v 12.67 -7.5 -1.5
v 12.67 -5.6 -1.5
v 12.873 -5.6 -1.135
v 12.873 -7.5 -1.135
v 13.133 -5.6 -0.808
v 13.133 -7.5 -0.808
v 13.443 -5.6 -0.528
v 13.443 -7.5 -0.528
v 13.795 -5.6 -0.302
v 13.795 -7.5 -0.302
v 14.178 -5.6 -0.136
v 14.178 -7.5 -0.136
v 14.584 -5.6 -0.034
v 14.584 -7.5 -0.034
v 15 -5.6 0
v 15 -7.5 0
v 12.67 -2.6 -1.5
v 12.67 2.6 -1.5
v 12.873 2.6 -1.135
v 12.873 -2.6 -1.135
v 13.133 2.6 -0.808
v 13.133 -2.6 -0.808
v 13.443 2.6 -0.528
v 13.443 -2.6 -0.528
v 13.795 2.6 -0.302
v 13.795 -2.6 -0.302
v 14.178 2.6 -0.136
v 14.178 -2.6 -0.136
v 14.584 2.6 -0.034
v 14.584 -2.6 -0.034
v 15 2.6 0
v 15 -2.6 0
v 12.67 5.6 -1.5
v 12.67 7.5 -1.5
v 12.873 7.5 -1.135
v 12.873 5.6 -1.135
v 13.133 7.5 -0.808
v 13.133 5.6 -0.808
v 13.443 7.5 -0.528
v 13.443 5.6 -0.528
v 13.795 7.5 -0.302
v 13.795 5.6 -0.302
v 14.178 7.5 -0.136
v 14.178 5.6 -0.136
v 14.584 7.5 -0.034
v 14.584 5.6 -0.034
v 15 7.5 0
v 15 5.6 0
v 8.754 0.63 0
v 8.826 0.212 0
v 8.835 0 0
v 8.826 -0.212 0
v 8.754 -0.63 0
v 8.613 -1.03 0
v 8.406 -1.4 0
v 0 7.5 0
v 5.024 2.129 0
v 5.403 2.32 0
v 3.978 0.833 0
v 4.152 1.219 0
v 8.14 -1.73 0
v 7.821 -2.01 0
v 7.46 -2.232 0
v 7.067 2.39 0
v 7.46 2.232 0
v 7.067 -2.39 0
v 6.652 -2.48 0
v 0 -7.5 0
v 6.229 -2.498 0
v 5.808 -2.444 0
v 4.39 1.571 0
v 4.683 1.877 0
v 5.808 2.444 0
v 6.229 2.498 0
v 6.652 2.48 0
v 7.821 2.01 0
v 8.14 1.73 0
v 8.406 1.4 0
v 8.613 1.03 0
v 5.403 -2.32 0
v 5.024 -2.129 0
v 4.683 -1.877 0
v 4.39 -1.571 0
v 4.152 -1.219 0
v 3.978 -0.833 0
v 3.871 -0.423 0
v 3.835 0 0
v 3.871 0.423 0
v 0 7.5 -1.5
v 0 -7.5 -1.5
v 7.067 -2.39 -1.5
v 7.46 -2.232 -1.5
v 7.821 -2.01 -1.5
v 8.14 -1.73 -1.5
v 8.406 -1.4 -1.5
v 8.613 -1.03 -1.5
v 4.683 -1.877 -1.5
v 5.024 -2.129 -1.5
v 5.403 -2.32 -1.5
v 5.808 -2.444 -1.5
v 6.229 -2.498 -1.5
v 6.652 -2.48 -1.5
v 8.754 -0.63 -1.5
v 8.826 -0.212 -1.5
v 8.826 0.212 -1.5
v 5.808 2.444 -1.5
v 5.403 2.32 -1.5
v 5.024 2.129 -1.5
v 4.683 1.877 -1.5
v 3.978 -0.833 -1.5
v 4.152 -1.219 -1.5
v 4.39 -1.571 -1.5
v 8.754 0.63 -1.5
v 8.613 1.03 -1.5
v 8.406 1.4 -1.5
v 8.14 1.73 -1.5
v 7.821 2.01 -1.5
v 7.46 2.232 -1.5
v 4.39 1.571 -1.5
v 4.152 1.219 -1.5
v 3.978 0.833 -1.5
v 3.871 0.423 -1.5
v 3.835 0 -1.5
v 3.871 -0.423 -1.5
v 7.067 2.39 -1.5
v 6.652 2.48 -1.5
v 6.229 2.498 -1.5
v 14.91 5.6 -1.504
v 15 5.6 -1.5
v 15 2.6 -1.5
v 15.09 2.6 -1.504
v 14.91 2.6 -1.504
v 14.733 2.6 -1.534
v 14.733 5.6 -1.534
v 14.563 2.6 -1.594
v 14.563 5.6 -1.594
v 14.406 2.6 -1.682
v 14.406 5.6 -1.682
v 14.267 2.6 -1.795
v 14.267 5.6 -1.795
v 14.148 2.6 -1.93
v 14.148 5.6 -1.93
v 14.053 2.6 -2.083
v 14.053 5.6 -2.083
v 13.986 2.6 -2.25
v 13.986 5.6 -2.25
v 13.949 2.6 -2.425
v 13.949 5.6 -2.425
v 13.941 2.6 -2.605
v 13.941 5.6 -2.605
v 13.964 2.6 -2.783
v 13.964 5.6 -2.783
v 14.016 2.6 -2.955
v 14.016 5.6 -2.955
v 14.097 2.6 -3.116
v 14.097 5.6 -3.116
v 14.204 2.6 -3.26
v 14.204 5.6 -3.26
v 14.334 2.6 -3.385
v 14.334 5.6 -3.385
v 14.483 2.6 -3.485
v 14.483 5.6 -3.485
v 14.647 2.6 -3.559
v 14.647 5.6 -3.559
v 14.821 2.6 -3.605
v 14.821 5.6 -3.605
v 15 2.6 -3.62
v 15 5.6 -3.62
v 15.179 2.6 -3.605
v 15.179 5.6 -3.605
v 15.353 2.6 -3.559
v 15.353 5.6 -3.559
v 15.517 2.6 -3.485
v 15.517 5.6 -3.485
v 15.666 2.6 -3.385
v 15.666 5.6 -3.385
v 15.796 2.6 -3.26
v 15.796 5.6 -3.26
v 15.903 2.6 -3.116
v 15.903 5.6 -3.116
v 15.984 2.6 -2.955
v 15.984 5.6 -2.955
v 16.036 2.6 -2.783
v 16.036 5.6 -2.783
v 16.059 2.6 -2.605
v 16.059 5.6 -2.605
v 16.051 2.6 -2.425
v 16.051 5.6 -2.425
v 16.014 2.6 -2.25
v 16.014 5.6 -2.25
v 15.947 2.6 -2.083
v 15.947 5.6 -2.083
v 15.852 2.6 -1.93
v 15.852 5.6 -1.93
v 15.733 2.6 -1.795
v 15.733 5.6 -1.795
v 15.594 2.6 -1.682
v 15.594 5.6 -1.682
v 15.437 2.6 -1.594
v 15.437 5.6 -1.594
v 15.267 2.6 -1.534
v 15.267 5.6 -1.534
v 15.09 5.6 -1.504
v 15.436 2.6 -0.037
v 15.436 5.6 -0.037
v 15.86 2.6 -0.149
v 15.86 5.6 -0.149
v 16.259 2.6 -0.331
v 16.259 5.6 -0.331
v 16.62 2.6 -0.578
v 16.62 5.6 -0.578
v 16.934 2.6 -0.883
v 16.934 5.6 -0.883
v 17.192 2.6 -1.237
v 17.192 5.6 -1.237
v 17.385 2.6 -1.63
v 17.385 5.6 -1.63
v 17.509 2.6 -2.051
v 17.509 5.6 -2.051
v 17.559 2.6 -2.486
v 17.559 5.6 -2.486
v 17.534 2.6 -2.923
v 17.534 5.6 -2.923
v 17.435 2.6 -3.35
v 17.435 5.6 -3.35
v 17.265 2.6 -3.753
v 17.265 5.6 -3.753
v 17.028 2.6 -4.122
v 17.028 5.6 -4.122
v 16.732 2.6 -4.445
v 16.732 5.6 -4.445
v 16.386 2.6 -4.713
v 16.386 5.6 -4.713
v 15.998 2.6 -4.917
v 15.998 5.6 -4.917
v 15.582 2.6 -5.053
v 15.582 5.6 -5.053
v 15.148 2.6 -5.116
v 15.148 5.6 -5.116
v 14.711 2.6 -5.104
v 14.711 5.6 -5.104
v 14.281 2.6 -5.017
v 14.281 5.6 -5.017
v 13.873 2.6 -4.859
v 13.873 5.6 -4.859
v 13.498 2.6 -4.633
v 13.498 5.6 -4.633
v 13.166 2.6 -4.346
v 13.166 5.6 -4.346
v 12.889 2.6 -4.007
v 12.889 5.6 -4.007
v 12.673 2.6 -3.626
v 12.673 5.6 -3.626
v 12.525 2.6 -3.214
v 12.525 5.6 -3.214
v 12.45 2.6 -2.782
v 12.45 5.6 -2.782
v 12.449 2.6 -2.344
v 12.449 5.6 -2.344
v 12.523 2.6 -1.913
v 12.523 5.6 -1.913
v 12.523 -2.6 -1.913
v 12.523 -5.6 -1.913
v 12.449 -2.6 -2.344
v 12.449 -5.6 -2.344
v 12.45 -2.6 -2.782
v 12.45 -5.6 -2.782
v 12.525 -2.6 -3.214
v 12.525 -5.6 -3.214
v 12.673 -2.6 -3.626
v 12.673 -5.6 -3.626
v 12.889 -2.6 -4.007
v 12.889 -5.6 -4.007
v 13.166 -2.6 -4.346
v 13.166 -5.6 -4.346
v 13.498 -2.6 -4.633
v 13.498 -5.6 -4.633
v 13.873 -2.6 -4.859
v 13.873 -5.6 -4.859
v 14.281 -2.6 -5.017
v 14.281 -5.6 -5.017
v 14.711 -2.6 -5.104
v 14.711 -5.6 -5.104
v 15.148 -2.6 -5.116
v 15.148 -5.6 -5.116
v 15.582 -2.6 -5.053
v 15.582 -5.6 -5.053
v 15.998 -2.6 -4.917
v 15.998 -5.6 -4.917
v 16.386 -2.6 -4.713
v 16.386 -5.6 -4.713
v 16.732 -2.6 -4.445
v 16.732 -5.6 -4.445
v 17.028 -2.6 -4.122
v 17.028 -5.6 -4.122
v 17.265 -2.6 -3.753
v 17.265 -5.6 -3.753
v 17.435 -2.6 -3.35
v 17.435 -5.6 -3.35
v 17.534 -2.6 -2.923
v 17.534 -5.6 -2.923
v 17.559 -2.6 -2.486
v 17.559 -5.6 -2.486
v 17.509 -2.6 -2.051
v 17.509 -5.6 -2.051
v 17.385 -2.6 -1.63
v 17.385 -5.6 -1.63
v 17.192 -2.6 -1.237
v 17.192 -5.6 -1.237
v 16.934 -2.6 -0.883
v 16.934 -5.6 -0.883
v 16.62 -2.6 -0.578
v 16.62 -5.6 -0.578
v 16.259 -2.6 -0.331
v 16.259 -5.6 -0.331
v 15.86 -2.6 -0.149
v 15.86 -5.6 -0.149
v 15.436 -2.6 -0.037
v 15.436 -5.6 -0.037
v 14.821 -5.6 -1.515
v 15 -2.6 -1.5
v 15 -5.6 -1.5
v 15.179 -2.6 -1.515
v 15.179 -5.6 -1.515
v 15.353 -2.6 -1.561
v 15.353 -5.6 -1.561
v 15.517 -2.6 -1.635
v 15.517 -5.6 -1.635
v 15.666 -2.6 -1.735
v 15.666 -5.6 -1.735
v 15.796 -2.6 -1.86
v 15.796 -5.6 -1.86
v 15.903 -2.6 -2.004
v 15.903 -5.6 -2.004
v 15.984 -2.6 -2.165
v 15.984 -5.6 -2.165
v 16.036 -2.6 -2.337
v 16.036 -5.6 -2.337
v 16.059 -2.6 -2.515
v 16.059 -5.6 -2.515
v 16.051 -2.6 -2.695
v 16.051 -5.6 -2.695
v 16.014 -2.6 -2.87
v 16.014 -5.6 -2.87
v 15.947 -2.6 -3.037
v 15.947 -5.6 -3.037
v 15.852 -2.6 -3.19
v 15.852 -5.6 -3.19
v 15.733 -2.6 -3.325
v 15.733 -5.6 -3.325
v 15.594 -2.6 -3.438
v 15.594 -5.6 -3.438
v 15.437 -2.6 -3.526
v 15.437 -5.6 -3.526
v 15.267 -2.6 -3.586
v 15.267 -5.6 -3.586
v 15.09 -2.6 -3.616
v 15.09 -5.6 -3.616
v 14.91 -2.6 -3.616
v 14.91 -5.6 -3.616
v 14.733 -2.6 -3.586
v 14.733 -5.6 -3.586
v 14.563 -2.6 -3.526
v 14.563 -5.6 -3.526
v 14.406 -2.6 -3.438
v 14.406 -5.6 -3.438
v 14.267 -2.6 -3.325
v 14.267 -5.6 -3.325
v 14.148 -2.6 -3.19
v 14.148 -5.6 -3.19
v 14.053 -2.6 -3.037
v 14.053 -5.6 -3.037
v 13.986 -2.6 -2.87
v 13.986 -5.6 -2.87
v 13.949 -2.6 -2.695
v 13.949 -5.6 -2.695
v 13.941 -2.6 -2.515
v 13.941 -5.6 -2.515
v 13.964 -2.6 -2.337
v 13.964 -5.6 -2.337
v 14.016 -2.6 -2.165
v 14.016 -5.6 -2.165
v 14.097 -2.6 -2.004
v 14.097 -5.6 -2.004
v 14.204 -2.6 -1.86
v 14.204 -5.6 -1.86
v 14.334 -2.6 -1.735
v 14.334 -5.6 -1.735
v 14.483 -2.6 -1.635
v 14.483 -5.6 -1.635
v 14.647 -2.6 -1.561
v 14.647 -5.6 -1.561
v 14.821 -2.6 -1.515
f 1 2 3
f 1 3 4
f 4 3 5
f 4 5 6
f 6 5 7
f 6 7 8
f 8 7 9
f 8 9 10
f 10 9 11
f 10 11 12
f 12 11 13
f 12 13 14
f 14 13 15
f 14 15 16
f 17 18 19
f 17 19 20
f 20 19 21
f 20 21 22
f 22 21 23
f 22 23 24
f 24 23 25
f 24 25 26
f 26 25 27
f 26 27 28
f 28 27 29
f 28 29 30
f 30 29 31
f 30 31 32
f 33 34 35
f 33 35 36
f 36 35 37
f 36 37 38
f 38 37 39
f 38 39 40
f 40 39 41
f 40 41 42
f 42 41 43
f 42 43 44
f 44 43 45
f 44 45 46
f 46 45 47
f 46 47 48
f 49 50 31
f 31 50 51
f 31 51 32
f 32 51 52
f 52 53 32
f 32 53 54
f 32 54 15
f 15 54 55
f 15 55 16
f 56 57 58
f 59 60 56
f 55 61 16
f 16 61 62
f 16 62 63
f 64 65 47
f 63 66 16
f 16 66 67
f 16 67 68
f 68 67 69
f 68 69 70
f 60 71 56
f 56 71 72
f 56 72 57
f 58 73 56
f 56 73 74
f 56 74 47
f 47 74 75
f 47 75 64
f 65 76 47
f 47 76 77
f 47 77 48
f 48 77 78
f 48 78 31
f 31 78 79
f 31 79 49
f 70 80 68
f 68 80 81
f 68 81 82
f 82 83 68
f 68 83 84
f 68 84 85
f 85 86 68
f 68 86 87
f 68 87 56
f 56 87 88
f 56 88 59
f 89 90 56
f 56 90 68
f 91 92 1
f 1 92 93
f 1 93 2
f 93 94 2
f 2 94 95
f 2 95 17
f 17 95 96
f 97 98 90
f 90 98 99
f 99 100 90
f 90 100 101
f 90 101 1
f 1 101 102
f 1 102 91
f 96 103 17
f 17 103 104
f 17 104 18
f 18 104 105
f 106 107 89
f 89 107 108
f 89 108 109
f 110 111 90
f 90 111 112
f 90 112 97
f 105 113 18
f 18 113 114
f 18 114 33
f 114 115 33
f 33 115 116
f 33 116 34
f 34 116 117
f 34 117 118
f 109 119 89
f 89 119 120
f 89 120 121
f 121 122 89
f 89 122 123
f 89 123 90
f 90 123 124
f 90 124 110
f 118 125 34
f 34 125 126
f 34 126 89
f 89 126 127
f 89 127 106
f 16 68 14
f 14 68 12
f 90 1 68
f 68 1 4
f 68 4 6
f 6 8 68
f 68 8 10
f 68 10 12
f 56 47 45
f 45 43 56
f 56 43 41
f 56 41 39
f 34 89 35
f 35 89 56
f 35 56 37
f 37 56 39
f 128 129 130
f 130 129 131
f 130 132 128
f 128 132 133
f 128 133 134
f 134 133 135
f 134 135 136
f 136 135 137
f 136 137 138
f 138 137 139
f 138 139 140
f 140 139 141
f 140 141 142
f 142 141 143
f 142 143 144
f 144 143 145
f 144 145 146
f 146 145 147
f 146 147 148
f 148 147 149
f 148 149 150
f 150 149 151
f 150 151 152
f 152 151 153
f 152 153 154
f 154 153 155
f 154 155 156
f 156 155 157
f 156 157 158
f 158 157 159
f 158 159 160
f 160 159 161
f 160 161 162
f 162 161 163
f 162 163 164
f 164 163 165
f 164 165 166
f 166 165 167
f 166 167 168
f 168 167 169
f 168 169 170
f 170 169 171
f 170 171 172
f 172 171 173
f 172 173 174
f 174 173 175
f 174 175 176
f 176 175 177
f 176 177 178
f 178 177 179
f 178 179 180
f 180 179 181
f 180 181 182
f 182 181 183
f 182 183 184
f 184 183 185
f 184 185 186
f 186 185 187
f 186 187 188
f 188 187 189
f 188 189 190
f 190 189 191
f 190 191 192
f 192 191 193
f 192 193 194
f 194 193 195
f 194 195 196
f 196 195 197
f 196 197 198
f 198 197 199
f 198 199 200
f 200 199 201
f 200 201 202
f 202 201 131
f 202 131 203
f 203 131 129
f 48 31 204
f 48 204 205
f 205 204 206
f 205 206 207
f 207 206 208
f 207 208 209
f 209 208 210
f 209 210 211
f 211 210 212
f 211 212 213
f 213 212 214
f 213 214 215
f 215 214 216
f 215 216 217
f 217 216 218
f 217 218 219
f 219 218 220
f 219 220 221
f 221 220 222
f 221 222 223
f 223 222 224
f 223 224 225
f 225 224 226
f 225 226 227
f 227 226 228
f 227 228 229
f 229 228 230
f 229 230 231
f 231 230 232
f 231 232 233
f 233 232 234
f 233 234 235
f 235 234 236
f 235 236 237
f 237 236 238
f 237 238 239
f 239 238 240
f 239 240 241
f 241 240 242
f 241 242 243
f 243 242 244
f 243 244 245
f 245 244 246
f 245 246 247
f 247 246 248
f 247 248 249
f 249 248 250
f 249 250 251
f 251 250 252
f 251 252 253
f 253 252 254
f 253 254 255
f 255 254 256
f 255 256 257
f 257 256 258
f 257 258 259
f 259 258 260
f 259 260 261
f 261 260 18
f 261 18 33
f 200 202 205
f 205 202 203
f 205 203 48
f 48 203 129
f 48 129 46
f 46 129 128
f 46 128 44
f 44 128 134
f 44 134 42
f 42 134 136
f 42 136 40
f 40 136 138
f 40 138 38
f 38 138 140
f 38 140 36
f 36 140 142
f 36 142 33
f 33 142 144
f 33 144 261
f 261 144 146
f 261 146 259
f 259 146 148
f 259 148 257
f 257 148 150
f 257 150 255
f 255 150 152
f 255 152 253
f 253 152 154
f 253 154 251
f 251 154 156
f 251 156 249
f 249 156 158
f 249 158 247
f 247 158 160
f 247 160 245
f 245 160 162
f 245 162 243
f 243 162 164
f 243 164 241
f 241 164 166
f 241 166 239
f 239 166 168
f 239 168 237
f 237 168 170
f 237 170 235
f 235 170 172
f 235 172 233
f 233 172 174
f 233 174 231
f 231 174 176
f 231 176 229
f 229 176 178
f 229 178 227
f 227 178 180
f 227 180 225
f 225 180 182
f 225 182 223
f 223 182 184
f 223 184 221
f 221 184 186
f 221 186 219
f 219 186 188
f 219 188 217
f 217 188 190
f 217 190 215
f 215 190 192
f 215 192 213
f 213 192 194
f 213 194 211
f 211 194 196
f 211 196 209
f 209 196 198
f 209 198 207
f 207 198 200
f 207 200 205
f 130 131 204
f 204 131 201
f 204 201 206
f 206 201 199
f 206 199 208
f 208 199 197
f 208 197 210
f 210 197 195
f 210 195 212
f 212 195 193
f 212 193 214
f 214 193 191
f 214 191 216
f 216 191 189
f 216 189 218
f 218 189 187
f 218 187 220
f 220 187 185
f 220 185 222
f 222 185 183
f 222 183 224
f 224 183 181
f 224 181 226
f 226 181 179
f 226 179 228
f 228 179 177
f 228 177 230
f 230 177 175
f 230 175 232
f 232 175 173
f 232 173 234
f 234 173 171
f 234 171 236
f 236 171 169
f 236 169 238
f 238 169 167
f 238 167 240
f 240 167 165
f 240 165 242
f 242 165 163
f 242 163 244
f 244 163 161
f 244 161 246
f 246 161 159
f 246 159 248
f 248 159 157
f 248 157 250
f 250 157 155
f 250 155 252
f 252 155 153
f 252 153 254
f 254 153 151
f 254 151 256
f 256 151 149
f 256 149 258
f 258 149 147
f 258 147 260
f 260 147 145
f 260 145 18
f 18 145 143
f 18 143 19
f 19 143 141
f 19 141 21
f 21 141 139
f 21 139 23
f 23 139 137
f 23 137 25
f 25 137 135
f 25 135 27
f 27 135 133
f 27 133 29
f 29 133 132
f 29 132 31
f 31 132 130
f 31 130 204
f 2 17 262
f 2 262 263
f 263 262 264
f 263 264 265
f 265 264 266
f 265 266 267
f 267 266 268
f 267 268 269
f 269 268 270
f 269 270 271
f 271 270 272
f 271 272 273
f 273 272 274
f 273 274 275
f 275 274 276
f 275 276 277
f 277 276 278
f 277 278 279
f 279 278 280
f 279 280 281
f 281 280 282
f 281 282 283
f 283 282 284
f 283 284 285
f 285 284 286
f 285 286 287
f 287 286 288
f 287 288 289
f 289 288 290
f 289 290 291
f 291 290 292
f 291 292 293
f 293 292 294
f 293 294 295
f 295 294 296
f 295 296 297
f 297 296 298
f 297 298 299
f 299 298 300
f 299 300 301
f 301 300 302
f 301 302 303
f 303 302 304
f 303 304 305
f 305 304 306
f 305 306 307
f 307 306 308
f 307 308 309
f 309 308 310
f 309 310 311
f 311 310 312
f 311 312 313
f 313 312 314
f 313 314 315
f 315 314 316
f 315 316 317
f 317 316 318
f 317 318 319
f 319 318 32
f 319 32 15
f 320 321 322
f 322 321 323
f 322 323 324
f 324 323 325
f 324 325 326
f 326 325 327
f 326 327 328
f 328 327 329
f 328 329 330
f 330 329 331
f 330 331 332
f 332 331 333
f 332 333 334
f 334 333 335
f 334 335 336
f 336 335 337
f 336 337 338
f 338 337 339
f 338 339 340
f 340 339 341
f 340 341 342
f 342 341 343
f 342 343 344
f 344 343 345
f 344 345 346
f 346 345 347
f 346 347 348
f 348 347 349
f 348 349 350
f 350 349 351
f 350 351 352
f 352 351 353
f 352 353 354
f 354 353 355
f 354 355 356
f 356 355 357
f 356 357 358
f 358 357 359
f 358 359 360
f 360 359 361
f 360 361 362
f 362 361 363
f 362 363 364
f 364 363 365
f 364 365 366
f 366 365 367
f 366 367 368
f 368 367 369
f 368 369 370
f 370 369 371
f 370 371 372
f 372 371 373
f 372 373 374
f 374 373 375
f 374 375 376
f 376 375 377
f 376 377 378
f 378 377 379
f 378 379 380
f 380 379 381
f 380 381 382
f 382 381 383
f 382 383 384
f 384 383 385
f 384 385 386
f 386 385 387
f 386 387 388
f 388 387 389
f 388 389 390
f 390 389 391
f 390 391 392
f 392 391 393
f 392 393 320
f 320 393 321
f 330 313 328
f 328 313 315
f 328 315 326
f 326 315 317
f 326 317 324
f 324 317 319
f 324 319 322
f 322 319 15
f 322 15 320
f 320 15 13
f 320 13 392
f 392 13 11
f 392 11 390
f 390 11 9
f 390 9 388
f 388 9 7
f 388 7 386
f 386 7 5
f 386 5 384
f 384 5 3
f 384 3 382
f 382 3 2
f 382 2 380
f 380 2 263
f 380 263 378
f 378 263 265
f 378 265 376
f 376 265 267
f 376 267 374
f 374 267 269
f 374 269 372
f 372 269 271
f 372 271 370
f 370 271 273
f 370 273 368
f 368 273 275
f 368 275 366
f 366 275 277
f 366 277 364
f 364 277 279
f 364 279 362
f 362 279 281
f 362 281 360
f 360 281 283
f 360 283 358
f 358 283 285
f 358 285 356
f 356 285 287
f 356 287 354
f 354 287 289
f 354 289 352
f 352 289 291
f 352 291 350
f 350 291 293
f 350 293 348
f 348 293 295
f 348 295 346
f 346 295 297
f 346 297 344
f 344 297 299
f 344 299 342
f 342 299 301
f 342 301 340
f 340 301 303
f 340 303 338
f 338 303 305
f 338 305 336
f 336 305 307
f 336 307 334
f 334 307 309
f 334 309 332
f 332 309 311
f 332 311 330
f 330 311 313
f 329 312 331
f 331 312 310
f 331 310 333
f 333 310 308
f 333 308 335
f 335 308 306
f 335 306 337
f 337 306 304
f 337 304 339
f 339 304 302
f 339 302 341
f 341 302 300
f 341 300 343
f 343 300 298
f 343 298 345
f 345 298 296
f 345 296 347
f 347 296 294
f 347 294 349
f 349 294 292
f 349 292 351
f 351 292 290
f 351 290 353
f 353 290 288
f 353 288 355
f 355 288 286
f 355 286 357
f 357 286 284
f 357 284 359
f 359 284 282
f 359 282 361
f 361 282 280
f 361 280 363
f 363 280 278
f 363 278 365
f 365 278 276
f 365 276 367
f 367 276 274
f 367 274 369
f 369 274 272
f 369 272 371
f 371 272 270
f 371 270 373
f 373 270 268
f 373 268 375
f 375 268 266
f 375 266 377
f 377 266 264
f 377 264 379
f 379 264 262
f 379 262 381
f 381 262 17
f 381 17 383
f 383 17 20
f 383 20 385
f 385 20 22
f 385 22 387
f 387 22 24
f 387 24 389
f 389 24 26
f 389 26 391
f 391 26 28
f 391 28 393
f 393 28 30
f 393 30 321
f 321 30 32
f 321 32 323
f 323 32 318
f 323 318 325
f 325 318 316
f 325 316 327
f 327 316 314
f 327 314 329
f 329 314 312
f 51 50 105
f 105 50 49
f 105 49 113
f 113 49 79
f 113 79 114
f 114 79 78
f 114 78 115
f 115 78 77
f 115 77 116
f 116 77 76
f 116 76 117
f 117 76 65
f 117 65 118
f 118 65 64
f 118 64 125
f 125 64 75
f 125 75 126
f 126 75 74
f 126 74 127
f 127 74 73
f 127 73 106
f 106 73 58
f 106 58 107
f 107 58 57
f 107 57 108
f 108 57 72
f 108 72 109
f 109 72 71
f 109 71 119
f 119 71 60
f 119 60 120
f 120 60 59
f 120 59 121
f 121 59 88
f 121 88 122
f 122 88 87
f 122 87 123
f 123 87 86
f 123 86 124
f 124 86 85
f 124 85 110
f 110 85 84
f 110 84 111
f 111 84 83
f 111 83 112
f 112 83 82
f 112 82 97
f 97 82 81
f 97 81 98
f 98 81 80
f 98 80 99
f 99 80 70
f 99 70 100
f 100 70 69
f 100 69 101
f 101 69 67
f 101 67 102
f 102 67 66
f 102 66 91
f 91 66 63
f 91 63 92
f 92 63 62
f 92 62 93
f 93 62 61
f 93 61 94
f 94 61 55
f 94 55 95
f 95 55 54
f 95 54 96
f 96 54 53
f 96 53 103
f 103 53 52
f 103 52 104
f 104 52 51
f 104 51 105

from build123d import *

# Parameters (mm, degrees)
BOSS_EXTRUDE1_DEPTH      = 7.5
BOSS_EXTRUDE1_DEPTH_BACK = 7.5
BOSS_EXTRUDE3_START      = 2.6
SKETCH1_4_R              = 1.06
BOSS_EXTRUDE3_DEPTH      = 3
BOSS_EXTRUDE4_START      = -5.6
SKETCH1_5_R              = 1.06
BOSS_EXTRUDE4_DEPTH      = 3
SKETCH2_R                = 2.5
CUT_EXTRUDE1_DEPTH       = 3


with BuildPart() as part:
    # Sketch1 → Boss-Extrude1 (new, two sides: drawn at the far end of the back side and taken through both)
    with BuildSketch(Plane(origin=(0, 0, 0), x_dir=(1, 0, 0), z_dir=(0, 1, 0)).offset(-BOSS_EXTRUDE1_DEPTH_BACK)):
        with BuildLine():
            Line((0, 1.5), (0, 0))
            Line((0, 0), (15, 0))
            ThreePointArc((15, 0), (13.614359354, 0.407420152), (12.66976396, 1.5))
            Line((12.66976396, 1.5), (0, 1.5))
        make_face()
    extrude(amount=BOSS_EXTRUDE1_DEPTH + BOSS_EXTRUDE1_DEPTH_BACK)

    # Sketch1<4> → Boss-Extrude3 (add)
    with BuildSketch(Plane(origin=(0, 0, 0), x_dir=(1, 0, 0), z_dir=(0, 1, 0)).offset(BOSS_EXTRUDE3_START)):
        with BuildLine():
            ThreePointArc((12.66976396, 1.5), (13.614359354, 0.407420152), (15, 0))
            ThreePointArc((15, 0), (16.81019336, 0.74980664), (17.56, 2.56))
            ThreePointArc((17.56, 2.56), (14.45769209, 5.061899704), (12.66976396, 1.5))
        make_face()
        with Locations((15, 2.56)):
            Circle(SKETCH1_4_R, mode=Mode.SUBTRACT)
    extrude(amount=BOSS_EXTRUDE3_DEPTH)

    # Sketch1<5> → Boss-Extrude4 (add)
    with BuildSketch(Plane(origin=(0, 0, 0), x_dir=(1, 0, 0), z_dir=(0, 1, 0)).offset(BOSS_EXTRUDE4_START)):
        with BuildLine():
            ThreePointArc((12.66976396, 1.5), (13.614359354, 0.407420152), (15, 0))
            ThreePointArc((15, 0), (16.81019336, 0.74980664), (17.56, 2.56))
            ThreePointArc((17.56, 2.56), (14.45769209, 5.061899704), (12.66976396, 1.5))
        make_face()
        with Locations((15, 2.56)):
            Circle(SKETCH1_5_R, mode=Mode.SUBTRACT)
    extrude(amount=BOSS_EXTRUDE4_DEPTH)

    # Sketch2 → Cut-Extrude1 (cut)
    with BuildSketch(Plane(origin=(0, 0, -1.5), x_dir=(-1, 0, 0), z_dir=(0, 0, -1))):
        with Locations((-6.33488198, 0)):
            Circle(SKETCH2_R)
    extrude(amount=-CUT_EXTRUDE1_DEPTH, mode=Mode.SUBTRACT)


solid = part.part
